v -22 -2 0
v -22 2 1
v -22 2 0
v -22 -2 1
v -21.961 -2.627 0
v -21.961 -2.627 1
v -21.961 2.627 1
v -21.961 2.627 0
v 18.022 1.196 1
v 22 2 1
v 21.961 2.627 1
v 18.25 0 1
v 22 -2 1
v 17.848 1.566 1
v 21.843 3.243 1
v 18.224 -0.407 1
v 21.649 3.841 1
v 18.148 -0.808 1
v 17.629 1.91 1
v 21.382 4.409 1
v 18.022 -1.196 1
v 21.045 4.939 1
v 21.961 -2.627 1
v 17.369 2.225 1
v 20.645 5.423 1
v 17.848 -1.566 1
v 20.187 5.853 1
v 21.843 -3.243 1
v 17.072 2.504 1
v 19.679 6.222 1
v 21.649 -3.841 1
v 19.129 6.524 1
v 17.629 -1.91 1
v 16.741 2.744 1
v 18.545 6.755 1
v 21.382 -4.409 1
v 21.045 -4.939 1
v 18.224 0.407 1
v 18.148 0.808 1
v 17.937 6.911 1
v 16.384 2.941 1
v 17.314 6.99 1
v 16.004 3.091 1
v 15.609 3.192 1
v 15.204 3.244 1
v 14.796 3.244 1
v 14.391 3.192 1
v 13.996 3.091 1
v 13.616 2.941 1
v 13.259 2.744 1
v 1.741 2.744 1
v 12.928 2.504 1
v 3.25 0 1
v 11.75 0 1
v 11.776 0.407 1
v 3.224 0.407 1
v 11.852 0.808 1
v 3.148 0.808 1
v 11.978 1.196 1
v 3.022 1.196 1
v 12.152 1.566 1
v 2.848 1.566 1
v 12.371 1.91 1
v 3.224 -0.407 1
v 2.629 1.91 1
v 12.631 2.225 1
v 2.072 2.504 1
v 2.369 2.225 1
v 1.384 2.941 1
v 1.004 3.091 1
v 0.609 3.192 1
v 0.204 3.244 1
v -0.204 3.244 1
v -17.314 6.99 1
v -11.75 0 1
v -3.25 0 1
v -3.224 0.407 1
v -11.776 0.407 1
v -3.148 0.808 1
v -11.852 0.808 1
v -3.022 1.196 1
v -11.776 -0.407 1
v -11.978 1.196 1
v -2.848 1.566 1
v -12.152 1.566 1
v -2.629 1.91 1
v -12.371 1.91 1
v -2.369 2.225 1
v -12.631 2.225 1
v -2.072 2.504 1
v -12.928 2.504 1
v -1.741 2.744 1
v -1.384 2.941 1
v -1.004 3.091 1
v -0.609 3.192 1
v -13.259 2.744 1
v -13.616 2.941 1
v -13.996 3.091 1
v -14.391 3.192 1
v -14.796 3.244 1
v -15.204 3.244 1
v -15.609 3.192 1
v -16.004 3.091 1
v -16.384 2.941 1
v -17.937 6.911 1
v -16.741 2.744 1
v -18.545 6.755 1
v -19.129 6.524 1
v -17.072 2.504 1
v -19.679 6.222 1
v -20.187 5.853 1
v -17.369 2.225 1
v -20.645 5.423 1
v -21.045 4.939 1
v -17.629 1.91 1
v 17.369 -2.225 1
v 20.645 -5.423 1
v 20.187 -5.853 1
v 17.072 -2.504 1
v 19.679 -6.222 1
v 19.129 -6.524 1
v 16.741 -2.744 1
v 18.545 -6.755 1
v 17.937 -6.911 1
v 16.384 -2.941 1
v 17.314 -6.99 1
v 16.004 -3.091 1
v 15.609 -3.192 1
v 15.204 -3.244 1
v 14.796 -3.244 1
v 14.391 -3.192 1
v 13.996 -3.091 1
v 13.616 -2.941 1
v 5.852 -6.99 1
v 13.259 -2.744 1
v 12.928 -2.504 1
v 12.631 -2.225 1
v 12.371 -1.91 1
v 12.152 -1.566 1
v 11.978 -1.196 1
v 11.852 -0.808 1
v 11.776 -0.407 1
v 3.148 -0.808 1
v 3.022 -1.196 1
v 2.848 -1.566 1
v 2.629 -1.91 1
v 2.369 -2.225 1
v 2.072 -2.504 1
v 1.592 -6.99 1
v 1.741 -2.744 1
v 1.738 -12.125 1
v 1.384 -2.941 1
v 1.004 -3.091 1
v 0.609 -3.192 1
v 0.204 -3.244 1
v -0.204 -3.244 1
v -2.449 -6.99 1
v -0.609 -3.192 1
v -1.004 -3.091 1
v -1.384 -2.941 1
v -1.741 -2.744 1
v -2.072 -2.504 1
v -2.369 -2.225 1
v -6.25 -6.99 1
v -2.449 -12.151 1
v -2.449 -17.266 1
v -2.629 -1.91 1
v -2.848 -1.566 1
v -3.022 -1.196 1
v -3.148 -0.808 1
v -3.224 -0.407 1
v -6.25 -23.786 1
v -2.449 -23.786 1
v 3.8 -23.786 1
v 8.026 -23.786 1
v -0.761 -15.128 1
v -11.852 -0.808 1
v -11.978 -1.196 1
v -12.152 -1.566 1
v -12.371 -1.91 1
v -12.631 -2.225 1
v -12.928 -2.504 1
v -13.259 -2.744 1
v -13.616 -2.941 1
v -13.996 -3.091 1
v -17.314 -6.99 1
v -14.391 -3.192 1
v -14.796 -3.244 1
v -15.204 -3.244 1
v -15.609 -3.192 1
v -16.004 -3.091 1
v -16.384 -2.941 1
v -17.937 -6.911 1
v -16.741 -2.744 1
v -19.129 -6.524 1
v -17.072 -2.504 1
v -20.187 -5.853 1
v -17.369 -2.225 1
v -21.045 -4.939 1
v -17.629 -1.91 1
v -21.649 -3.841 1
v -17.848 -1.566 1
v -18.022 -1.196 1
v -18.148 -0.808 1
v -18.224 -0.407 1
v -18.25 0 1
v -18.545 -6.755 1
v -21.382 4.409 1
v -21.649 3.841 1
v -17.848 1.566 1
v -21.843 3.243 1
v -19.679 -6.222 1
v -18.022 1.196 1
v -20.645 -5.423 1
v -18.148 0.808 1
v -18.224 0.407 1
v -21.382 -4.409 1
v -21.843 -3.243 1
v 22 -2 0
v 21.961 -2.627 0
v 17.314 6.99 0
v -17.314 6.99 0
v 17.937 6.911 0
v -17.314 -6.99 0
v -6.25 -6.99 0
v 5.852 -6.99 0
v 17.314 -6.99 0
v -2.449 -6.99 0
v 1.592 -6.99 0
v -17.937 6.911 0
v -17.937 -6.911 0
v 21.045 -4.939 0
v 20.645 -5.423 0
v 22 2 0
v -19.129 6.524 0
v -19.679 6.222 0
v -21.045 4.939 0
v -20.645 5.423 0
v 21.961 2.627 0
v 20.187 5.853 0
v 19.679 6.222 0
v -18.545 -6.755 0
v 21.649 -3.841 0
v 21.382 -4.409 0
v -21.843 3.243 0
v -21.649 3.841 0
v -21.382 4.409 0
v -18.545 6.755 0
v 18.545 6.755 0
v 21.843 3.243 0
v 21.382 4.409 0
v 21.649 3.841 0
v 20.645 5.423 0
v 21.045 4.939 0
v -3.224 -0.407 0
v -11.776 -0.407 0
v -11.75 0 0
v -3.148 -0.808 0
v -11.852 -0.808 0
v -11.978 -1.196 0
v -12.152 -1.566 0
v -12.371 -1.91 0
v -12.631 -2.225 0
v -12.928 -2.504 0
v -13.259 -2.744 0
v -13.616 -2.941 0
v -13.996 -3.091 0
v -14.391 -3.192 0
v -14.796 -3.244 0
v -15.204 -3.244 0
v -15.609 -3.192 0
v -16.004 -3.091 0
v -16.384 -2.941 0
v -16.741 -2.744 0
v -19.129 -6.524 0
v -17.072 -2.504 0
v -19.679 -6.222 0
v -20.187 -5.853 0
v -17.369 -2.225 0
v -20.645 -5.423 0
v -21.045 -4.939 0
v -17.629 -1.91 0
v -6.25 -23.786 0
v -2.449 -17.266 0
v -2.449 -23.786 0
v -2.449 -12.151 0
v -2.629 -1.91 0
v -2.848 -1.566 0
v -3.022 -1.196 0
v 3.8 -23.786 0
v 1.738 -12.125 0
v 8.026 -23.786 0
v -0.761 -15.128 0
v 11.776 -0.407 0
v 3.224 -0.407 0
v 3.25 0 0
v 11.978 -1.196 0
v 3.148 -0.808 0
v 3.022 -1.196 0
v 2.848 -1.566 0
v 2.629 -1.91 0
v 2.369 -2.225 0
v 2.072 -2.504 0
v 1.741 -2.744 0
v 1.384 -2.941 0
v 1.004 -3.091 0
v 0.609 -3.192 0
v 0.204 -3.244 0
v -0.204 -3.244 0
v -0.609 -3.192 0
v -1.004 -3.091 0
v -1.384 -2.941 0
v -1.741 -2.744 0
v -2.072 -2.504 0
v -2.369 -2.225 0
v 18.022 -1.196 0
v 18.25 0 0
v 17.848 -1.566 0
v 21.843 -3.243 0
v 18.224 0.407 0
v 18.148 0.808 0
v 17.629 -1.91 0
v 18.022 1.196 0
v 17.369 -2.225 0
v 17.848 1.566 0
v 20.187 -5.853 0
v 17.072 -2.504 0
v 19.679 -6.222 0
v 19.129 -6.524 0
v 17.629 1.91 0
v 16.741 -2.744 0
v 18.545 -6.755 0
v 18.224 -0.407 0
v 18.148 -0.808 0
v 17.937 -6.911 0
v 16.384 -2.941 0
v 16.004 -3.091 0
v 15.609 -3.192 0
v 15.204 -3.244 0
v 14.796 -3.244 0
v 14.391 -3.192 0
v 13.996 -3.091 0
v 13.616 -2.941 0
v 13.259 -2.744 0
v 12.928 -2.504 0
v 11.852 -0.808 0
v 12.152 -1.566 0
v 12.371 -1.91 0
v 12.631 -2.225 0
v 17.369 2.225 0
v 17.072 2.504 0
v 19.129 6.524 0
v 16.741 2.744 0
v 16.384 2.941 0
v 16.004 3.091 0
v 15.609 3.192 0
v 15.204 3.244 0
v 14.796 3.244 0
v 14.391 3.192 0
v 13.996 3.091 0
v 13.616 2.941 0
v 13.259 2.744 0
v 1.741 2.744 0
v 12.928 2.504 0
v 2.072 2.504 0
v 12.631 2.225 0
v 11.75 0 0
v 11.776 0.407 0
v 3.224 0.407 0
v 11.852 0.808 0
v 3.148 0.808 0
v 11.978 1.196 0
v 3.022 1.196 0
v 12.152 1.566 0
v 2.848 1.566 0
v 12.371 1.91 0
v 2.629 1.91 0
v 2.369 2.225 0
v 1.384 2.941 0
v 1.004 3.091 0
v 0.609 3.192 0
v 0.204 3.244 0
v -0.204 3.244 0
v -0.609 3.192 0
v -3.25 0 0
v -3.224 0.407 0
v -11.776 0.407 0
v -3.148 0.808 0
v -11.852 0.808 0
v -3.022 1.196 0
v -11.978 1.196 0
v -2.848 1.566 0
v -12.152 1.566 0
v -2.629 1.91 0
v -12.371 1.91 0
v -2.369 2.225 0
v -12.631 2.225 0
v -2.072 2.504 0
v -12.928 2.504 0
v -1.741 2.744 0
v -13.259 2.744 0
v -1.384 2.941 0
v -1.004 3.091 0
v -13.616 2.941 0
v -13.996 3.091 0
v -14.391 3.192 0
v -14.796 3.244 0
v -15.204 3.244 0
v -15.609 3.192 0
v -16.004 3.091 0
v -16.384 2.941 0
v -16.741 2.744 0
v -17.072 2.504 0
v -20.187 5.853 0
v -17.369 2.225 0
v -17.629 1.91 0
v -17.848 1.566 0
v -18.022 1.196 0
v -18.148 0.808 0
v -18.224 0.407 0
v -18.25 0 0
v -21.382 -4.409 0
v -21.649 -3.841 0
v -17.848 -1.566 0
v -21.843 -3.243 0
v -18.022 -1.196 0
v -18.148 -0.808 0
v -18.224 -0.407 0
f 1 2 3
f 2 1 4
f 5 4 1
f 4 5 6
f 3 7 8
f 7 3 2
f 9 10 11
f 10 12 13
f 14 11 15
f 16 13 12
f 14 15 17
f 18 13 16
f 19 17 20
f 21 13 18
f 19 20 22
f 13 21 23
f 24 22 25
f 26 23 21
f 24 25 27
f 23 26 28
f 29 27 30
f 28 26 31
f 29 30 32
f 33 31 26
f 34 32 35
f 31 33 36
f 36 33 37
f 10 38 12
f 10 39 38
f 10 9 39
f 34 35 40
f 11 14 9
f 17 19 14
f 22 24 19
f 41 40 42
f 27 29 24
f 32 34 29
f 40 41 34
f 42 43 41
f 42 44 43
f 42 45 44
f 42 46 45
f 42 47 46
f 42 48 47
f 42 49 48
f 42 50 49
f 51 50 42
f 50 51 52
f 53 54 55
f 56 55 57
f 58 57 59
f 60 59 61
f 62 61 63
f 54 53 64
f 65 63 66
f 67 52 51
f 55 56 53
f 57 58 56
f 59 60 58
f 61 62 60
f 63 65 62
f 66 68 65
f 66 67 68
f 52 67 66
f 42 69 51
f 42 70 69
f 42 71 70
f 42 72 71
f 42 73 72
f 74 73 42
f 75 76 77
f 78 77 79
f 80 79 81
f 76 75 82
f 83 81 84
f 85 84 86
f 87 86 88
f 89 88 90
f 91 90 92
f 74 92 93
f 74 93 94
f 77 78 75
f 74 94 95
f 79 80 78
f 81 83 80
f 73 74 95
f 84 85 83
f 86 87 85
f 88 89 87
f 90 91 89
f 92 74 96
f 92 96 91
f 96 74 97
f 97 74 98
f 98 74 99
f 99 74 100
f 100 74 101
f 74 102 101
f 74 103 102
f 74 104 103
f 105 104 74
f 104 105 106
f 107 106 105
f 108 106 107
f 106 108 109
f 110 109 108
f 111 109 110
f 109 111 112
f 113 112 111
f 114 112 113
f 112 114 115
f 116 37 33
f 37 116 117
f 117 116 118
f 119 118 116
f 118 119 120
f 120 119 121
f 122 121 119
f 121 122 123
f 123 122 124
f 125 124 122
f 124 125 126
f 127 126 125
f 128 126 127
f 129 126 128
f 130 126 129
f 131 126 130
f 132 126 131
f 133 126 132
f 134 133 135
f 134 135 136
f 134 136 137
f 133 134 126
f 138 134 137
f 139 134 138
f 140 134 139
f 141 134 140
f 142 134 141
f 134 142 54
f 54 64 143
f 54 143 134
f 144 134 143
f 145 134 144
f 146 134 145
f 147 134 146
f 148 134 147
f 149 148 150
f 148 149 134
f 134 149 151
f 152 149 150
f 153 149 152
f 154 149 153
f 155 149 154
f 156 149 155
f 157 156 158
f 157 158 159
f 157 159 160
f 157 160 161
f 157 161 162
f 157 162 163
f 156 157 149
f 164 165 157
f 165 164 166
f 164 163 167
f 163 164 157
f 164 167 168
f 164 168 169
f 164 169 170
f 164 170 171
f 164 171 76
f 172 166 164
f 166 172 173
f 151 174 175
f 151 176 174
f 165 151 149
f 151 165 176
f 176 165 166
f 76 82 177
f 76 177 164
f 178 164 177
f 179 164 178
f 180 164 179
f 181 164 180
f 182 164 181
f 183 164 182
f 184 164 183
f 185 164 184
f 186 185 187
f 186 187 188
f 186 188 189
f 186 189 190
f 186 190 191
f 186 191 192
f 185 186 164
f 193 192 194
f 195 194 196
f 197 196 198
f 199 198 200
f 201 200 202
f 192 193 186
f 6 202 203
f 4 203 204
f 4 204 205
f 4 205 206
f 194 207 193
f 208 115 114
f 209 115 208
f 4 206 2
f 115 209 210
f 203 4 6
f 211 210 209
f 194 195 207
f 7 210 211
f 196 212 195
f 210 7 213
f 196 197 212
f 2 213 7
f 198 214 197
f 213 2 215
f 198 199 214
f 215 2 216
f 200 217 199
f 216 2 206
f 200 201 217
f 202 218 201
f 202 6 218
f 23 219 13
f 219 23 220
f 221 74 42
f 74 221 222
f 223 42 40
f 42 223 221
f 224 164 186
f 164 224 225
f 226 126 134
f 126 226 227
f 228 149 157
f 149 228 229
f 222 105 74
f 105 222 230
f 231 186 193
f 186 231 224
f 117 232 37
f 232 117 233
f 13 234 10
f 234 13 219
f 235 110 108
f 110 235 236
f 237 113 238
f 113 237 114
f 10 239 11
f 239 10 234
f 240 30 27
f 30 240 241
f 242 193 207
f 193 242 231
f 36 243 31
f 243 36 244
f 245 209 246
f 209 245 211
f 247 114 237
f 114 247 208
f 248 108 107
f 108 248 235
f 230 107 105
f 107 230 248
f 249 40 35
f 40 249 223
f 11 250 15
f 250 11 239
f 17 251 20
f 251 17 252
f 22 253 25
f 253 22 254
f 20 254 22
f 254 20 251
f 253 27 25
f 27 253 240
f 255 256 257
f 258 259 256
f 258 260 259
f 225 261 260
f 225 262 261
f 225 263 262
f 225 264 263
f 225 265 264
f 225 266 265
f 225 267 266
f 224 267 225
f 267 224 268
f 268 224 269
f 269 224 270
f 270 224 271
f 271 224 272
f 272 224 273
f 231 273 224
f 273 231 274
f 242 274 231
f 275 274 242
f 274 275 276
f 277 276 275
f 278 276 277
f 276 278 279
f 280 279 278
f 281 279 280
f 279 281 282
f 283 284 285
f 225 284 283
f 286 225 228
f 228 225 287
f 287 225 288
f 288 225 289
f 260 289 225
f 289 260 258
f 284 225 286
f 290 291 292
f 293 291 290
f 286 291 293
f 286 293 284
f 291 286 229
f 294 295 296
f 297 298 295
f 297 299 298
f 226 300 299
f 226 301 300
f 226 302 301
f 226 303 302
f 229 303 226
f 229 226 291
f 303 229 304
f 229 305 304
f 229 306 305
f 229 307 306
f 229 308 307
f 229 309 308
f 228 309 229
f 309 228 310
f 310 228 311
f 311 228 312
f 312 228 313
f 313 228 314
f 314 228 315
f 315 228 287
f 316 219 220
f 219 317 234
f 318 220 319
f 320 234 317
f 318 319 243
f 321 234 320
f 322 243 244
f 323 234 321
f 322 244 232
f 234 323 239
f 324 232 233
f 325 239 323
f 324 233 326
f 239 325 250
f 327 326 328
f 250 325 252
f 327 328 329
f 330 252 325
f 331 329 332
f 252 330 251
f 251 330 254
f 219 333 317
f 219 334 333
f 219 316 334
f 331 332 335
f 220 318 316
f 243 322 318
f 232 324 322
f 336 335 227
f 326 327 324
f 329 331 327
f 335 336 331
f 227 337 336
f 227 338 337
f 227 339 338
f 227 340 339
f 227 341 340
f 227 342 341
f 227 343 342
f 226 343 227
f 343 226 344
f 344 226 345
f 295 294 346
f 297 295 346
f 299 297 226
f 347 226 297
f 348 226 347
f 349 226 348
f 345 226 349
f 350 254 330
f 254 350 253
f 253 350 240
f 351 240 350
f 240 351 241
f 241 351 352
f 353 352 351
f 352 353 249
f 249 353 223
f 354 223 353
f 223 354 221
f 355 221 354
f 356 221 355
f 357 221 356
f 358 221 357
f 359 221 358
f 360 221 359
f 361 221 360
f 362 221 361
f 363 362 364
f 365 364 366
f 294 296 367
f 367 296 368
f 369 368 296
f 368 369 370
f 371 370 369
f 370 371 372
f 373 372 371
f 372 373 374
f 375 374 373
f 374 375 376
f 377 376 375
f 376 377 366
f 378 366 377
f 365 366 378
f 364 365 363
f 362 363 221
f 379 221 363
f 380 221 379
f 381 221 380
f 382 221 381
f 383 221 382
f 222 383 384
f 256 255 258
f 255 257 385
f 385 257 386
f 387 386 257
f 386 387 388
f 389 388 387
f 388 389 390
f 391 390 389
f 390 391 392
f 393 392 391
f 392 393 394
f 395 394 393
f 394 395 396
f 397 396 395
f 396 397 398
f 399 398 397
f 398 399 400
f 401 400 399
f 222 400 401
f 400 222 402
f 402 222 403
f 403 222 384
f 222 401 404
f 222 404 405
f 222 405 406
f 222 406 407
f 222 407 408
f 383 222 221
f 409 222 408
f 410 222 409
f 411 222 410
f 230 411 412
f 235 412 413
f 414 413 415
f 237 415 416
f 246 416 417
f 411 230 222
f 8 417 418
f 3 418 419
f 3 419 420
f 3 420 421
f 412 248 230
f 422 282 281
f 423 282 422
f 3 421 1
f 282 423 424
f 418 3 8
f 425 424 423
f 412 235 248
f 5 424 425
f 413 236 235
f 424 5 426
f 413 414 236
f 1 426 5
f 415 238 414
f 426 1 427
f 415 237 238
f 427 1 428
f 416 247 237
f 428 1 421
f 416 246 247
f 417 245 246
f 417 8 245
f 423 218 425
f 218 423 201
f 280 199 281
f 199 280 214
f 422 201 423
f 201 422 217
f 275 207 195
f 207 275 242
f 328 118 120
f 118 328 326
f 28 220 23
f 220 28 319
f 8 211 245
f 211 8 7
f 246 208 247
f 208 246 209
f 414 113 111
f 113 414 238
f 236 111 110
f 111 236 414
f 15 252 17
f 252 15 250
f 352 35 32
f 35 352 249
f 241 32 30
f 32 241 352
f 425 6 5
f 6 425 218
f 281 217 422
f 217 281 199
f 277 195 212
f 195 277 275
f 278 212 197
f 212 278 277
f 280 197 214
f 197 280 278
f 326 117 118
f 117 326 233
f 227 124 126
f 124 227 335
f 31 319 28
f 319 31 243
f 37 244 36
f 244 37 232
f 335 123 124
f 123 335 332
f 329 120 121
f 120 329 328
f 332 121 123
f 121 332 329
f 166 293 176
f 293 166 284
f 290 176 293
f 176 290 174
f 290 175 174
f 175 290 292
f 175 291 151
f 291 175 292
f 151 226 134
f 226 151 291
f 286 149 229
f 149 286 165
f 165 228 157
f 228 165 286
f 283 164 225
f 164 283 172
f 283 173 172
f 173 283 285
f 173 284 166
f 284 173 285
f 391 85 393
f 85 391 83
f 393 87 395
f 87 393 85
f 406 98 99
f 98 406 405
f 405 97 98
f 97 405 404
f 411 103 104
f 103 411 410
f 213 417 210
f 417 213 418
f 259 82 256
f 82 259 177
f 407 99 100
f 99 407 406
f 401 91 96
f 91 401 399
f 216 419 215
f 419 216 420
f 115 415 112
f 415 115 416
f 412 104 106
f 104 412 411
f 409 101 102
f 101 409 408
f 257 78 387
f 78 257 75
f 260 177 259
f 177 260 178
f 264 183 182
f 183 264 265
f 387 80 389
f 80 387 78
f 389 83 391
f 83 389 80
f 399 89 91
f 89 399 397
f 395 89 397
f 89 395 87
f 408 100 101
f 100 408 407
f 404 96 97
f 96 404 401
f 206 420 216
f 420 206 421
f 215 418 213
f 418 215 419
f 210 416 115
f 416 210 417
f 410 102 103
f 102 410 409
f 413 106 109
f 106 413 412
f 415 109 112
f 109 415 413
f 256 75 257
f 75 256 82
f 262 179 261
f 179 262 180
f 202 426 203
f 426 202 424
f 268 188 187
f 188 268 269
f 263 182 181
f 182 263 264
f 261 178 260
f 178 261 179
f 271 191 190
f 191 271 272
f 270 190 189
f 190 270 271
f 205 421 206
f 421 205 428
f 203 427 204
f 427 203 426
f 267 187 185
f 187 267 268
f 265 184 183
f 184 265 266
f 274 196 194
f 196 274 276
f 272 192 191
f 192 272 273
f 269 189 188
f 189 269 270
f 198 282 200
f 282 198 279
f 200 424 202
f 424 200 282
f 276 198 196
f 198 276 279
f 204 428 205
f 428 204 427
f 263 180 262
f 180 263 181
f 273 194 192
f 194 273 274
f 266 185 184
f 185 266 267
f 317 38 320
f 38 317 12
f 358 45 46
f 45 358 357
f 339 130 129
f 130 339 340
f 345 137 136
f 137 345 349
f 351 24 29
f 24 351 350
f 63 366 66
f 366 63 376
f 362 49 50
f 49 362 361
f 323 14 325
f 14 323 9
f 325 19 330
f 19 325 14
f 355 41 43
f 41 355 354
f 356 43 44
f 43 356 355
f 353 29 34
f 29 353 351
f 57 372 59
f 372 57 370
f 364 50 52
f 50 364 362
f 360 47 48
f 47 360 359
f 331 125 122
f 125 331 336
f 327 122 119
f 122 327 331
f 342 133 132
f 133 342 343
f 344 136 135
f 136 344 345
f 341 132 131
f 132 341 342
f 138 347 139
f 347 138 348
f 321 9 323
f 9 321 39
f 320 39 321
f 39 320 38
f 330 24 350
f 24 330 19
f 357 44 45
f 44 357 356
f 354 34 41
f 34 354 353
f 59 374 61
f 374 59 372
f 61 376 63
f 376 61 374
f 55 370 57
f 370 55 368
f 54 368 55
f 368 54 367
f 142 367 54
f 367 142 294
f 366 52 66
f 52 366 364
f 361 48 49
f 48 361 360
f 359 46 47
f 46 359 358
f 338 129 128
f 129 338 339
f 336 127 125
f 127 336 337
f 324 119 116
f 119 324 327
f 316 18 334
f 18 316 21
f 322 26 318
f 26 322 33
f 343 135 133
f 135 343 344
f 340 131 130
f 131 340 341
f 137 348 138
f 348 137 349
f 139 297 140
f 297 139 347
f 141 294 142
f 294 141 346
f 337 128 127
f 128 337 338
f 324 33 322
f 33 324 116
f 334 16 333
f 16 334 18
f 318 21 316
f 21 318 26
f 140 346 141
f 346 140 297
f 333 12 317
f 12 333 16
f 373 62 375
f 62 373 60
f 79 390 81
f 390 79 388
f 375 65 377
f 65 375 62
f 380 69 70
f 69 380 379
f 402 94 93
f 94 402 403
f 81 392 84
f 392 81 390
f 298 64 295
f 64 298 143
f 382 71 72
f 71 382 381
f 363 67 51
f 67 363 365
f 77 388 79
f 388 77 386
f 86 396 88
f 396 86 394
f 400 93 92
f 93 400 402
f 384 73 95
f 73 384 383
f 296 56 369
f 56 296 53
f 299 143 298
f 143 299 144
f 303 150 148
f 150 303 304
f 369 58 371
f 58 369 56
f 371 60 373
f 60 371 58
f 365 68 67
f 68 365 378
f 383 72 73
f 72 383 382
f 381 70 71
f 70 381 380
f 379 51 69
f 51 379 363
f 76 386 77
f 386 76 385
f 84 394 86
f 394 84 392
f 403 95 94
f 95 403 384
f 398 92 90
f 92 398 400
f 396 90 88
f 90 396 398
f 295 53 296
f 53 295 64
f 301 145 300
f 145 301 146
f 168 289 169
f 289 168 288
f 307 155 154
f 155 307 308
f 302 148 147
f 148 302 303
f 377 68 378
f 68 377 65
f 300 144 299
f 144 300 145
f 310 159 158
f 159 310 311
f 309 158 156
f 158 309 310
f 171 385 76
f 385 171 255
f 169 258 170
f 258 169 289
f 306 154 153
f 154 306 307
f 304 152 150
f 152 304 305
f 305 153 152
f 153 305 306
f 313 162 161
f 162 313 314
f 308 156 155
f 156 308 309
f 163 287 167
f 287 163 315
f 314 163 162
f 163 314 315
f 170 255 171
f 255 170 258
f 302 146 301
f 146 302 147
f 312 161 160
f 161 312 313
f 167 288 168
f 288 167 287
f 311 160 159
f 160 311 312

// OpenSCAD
$fn = 50;


difference() {
	union() {
		translate(v = [0, 0, 0]) {
			rotate(a = [0, 0, 0]) {
				hull() {
					translate(v = [-17.0000000000, 2.0000000000, 0]) {
						rotate(a = [0, 0, 0]) {
							translate(v = [0, 0, 0]) {
								rotate(a = [0, 0, 0]) {
									cylinder(h = 1, r = 5);
								}
							}
						}
					}
					translate(v = [17.0000000000, 2.0000000000, 0]) {
						rotate(a = [0, 0, 0]) {
							translate(v = [0, 0, 0]) {
								rotate(a = [0, 0, 0]) {
									cylinder(h = 1, r = 5);
								}
							}
						}
					}
					translate(v = [-17.0000000000, -2.0000000000, 0]) {
						rotate(a = [0, 0, 0]) {
							translate(v = [0, 0, 0]) {
								rotate(a = [0, 0, 0]) {
									cylinder(h = 1, r = 5);
								}
							}
						}
					}
					translate(v = [17.0000000000, -2.0000000000, 0]) {
						rotate(a = [0, 0, 0]) {
							translate(v = [0, 0, 0]) {
								rotate(a = [0, 0, 0]) {
									cylinder(h = 1, r = 5);
								}
							}
						}
					}
				}
			}
		}
		translate(v = [0, -5, 0]) {
			rotate(a = [0, 0, 0]) {
				linear_extrude(height = 1) {
					text(font = "DejaVu Sans Mono:style=Bold", halign = "center", size = 19.0000000000, text = "K", valign = "top");
				}
			}
		}
	}
	union() {
		translate(v = [-15.0000000000, 0.0000000000, -125.0000000000]) {
			rotate(a = [0, 0, 0]) {
				cylinder(h = 250, r = 3.2500000000);
			}
		}
		translate(v = [15.0000000000, 0.0000000000, -125.0000000000]) {
			rotate(a = [0, 0, 0]) {
				cylinder(h = 250, r = 3.2500000000);
			}
		}
		translate(v = [15.0000000000, 0.0000000000, -125.0000000000]) {
			rotate(a = [0, 0, 0]) {
				cylinder(h = 250, r = 3.2500000000);
			}
		}
		translate(v = [0, 0, -125.0000000000]) {
			rotate(a = [0, 0, 0]) {
				cylinder(h = 250, r = 3.2500000000);
			}
		}
	}
}
